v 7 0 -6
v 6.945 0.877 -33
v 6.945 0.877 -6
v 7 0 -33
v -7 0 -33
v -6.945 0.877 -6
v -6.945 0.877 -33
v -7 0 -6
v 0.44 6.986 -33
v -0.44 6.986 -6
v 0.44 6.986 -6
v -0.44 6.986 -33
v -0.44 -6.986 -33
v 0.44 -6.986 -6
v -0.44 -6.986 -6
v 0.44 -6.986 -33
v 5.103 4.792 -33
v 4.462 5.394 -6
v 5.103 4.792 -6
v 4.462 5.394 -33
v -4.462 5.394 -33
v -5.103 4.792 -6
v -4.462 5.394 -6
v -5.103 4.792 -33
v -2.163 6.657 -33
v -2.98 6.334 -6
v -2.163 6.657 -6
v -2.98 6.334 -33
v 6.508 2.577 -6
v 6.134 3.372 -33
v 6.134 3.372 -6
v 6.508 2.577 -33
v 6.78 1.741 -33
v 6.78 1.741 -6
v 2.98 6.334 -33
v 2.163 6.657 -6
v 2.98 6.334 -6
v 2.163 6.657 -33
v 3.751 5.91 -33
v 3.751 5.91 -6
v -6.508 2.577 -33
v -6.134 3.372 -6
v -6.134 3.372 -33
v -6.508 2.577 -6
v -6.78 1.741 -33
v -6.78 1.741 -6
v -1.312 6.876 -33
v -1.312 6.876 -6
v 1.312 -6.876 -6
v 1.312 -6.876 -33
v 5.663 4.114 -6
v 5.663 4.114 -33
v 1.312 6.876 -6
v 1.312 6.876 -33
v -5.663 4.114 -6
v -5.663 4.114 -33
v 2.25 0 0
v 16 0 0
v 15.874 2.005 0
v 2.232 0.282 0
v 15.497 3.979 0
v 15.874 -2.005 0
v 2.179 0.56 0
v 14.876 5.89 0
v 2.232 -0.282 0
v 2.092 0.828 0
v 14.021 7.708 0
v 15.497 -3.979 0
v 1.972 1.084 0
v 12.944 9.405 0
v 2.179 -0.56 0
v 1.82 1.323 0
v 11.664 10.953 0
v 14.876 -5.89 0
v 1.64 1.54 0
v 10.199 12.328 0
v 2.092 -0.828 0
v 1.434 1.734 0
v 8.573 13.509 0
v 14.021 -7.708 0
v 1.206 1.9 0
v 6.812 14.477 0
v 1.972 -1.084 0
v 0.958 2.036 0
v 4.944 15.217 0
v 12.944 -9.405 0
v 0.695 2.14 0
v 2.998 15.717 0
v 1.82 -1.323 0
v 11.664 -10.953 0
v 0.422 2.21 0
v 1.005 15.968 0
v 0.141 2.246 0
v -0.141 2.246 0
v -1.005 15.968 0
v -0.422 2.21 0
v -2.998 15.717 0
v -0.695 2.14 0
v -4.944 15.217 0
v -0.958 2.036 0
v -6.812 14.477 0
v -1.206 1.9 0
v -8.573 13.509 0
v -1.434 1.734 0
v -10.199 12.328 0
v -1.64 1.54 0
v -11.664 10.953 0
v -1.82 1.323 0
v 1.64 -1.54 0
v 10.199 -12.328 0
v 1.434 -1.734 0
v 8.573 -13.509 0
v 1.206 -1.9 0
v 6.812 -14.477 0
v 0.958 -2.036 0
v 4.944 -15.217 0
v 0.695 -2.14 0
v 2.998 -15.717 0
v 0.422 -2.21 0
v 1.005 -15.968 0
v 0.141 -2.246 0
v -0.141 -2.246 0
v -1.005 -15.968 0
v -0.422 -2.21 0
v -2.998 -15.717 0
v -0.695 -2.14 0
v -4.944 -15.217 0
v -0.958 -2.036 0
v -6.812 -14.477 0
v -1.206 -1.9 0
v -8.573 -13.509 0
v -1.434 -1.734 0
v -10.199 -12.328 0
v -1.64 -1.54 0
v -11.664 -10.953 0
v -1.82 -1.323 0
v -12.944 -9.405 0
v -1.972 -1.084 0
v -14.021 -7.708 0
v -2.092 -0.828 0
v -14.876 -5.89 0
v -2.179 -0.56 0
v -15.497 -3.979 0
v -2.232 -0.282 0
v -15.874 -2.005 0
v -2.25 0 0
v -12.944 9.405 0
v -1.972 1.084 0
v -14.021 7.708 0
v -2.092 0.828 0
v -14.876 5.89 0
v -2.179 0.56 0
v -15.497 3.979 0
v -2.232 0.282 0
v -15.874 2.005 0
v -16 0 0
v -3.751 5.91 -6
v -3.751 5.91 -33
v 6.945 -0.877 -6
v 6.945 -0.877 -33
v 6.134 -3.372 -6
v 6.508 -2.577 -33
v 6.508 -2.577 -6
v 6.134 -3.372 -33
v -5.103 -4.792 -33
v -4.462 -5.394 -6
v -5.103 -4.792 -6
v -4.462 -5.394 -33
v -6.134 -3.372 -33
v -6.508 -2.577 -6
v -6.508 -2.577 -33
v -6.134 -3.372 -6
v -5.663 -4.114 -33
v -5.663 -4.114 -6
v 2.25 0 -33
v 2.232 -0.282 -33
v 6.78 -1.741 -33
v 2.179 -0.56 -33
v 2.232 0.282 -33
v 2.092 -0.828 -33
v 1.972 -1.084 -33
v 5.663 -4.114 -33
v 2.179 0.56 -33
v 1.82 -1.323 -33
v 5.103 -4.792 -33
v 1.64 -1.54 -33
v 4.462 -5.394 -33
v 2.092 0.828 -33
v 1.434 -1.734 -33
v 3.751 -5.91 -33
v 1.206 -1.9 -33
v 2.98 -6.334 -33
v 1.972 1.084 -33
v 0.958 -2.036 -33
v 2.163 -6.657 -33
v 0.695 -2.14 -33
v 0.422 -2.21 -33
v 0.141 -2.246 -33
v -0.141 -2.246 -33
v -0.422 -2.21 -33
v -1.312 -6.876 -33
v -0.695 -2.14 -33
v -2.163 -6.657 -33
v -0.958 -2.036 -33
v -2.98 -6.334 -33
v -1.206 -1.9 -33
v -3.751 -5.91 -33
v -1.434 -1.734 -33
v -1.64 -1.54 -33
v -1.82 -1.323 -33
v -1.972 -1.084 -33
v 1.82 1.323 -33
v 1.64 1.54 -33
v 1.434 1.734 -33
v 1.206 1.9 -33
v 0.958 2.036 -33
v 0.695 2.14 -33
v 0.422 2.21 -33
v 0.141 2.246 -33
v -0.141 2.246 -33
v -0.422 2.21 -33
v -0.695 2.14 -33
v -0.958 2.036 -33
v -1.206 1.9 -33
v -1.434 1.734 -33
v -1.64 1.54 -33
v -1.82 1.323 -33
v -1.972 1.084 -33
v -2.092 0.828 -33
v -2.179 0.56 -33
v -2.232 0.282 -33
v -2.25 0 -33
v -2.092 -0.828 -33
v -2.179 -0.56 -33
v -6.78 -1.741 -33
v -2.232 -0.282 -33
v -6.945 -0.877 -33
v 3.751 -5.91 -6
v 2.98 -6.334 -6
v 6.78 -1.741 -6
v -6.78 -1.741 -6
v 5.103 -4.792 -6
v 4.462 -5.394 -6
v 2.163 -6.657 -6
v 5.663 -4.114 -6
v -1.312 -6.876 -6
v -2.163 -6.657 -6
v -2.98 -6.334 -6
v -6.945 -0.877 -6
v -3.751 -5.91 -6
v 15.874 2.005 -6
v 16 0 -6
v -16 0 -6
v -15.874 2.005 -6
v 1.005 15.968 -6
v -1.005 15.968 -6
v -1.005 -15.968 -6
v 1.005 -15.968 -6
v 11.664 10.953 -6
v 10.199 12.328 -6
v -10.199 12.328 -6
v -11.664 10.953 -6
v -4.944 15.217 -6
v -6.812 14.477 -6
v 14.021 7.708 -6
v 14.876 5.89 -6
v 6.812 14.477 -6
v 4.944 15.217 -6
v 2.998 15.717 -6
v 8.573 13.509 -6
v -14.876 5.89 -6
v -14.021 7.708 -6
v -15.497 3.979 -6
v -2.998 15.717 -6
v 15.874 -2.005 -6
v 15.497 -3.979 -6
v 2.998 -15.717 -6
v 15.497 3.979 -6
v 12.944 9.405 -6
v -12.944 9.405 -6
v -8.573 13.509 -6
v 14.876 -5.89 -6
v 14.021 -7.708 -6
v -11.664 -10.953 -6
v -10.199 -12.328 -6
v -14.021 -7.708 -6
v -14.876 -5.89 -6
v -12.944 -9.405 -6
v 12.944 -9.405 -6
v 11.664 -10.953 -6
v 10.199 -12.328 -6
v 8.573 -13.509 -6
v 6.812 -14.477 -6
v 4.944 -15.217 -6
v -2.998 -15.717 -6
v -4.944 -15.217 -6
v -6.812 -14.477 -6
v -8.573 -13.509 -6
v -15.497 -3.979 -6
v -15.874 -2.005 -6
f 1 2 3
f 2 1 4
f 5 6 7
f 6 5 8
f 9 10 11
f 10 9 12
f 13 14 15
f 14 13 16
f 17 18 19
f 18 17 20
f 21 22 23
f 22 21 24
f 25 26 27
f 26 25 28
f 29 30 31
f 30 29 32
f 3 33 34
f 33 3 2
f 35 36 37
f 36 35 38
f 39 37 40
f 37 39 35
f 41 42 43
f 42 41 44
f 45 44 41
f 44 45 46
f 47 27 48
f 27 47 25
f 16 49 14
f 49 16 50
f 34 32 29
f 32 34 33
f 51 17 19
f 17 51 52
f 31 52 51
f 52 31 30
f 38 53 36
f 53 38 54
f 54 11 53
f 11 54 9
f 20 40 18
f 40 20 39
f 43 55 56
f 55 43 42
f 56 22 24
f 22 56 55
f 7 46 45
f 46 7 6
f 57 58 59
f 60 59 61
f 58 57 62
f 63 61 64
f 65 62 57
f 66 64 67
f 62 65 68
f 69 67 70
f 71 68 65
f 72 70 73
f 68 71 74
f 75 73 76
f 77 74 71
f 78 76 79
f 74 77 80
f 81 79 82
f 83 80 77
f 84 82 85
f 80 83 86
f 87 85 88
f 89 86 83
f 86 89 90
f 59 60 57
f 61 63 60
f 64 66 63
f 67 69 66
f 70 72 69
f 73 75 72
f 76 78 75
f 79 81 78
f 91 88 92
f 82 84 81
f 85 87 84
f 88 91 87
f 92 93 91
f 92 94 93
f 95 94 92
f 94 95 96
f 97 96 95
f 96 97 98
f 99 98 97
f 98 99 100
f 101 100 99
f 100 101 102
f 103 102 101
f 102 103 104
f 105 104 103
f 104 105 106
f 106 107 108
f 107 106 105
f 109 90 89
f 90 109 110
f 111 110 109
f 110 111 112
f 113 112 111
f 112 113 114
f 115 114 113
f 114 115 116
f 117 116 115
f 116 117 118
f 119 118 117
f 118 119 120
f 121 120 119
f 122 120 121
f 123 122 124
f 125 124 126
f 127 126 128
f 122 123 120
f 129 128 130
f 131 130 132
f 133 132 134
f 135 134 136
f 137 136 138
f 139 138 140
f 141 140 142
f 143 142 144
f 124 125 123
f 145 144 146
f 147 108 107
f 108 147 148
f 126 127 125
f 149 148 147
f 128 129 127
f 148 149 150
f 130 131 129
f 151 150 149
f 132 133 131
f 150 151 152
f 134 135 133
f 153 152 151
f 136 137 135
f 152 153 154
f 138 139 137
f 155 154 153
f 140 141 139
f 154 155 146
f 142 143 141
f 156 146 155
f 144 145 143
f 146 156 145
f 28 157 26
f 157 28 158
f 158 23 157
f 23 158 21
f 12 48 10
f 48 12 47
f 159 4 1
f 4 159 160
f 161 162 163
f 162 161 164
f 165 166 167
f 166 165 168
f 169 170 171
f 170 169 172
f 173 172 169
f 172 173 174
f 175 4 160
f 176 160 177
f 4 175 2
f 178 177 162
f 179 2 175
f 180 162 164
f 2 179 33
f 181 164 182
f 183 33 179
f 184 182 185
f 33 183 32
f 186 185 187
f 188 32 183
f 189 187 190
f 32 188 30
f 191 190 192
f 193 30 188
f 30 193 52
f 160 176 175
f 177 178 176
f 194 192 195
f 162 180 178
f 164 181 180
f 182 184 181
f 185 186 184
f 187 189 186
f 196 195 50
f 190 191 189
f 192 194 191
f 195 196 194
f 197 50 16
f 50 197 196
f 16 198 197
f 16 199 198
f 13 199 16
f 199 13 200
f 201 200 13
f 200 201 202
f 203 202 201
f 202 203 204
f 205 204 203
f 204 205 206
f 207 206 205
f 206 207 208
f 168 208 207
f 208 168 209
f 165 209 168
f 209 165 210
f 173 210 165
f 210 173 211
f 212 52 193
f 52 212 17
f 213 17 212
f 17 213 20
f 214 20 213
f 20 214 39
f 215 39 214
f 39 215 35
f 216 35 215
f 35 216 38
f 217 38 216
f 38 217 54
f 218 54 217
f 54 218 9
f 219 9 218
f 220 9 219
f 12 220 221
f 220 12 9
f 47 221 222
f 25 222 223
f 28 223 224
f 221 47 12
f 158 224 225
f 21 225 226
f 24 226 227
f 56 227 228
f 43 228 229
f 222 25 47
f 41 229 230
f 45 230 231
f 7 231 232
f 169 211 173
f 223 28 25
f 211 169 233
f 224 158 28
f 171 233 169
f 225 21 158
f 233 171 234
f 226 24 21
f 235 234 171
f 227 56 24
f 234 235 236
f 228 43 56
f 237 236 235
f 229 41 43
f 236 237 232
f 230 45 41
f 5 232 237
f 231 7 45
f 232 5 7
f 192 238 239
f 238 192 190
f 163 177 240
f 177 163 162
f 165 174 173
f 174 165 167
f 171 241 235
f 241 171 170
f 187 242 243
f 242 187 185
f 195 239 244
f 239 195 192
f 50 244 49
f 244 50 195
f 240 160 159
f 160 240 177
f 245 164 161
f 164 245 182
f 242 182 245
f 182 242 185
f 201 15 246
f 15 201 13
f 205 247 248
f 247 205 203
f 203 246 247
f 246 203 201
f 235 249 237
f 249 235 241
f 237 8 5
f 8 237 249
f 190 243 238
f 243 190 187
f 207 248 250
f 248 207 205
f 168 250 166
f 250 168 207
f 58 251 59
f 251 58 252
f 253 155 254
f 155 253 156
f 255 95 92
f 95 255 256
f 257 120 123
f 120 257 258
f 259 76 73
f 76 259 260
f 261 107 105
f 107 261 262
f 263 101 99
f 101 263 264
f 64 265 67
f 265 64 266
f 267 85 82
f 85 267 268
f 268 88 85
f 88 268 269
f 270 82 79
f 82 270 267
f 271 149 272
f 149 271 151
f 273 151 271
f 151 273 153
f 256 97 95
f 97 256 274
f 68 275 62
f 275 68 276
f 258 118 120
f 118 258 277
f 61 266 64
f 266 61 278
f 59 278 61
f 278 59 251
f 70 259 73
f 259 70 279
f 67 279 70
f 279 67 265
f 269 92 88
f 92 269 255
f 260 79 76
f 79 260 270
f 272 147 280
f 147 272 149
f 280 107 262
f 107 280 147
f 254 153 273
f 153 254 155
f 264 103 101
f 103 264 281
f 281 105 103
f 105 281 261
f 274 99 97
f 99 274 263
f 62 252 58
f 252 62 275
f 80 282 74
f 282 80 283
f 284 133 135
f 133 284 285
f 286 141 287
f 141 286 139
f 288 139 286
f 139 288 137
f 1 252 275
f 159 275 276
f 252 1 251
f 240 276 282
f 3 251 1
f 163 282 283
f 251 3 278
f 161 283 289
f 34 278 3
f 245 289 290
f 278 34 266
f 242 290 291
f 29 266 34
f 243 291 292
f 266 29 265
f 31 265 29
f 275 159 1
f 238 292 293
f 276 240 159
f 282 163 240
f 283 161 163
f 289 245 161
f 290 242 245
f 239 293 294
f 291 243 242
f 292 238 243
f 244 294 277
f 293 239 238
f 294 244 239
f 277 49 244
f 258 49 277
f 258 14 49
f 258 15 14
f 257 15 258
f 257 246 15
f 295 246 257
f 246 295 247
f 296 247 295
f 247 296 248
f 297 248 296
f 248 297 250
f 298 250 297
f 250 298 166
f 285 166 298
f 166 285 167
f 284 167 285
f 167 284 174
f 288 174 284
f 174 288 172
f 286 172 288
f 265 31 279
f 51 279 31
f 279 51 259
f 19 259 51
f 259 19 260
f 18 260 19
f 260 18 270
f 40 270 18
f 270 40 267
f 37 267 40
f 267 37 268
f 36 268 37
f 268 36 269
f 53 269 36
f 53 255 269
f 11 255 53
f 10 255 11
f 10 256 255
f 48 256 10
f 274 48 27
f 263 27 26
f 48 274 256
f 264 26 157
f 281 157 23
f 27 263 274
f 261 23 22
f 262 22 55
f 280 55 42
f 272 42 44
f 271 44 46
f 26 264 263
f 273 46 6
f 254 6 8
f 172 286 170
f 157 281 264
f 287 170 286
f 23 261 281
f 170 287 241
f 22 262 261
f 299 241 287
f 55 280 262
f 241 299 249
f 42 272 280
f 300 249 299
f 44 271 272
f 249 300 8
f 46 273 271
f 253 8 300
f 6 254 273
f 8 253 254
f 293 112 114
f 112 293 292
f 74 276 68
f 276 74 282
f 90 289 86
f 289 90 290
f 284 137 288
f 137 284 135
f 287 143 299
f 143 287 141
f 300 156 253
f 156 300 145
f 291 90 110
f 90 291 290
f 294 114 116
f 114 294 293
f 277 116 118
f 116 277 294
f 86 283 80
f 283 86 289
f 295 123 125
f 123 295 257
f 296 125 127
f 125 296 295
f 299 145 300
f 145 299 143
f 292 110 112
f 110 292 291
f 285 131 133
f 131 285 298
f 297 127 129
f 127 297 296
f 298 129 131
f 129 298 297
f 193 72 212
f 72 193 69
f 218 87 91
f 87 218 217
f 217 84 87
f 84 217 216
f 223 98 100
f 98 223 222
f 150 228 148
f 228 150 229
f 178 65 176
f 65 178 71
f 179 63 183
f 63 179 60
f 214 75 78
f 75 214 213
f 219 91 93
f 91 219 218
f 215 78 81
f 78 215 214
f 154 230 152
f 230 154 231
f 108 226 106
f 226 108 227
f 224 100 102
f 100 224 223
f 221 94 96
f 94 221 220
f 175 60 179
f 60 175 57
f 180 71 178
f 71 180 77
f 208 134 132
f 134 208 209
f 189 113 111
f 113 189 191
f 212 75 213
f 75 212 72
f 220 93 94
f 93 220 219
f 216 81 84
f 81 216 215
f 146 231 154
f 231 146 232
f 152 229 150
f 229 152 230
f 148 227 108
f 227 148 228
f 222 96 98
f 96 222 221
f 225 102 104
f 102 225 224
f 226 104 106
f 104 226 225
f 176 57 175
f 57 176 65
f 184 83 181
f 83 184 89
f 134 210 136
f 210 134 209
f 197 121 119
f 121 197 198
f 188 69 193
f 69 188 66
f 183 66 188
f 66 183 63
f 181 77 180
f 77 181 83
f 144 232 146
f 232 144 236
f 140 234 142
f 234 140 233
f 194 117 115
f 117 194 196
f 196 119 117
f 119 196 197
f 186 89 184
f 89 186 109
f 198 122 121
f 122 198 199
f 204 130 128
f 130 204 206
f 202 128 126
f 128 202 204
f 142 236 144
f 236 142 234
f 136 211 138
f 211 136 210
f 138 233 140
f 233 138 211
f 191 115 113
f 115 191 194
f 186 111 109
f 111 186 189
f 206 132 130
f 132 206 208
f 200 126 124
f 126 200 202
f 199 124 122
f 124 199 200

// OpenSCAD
$fn = 50;


difference() {
	union() {
		translate(v = [0, 0, -33.0000000000]) {
			cylinder(h = 33, r = 7.0000000000);
		}
		translate(v = [0, 0, -6.0000000000]) {
			cylinder(h = 6, r = 16.0000000000);
		}
	}
	union() {
		#translate(v = [0, 0, -33]) {
			cylinder(h = 33, r = 2.2500000000);
		}
	}
}
